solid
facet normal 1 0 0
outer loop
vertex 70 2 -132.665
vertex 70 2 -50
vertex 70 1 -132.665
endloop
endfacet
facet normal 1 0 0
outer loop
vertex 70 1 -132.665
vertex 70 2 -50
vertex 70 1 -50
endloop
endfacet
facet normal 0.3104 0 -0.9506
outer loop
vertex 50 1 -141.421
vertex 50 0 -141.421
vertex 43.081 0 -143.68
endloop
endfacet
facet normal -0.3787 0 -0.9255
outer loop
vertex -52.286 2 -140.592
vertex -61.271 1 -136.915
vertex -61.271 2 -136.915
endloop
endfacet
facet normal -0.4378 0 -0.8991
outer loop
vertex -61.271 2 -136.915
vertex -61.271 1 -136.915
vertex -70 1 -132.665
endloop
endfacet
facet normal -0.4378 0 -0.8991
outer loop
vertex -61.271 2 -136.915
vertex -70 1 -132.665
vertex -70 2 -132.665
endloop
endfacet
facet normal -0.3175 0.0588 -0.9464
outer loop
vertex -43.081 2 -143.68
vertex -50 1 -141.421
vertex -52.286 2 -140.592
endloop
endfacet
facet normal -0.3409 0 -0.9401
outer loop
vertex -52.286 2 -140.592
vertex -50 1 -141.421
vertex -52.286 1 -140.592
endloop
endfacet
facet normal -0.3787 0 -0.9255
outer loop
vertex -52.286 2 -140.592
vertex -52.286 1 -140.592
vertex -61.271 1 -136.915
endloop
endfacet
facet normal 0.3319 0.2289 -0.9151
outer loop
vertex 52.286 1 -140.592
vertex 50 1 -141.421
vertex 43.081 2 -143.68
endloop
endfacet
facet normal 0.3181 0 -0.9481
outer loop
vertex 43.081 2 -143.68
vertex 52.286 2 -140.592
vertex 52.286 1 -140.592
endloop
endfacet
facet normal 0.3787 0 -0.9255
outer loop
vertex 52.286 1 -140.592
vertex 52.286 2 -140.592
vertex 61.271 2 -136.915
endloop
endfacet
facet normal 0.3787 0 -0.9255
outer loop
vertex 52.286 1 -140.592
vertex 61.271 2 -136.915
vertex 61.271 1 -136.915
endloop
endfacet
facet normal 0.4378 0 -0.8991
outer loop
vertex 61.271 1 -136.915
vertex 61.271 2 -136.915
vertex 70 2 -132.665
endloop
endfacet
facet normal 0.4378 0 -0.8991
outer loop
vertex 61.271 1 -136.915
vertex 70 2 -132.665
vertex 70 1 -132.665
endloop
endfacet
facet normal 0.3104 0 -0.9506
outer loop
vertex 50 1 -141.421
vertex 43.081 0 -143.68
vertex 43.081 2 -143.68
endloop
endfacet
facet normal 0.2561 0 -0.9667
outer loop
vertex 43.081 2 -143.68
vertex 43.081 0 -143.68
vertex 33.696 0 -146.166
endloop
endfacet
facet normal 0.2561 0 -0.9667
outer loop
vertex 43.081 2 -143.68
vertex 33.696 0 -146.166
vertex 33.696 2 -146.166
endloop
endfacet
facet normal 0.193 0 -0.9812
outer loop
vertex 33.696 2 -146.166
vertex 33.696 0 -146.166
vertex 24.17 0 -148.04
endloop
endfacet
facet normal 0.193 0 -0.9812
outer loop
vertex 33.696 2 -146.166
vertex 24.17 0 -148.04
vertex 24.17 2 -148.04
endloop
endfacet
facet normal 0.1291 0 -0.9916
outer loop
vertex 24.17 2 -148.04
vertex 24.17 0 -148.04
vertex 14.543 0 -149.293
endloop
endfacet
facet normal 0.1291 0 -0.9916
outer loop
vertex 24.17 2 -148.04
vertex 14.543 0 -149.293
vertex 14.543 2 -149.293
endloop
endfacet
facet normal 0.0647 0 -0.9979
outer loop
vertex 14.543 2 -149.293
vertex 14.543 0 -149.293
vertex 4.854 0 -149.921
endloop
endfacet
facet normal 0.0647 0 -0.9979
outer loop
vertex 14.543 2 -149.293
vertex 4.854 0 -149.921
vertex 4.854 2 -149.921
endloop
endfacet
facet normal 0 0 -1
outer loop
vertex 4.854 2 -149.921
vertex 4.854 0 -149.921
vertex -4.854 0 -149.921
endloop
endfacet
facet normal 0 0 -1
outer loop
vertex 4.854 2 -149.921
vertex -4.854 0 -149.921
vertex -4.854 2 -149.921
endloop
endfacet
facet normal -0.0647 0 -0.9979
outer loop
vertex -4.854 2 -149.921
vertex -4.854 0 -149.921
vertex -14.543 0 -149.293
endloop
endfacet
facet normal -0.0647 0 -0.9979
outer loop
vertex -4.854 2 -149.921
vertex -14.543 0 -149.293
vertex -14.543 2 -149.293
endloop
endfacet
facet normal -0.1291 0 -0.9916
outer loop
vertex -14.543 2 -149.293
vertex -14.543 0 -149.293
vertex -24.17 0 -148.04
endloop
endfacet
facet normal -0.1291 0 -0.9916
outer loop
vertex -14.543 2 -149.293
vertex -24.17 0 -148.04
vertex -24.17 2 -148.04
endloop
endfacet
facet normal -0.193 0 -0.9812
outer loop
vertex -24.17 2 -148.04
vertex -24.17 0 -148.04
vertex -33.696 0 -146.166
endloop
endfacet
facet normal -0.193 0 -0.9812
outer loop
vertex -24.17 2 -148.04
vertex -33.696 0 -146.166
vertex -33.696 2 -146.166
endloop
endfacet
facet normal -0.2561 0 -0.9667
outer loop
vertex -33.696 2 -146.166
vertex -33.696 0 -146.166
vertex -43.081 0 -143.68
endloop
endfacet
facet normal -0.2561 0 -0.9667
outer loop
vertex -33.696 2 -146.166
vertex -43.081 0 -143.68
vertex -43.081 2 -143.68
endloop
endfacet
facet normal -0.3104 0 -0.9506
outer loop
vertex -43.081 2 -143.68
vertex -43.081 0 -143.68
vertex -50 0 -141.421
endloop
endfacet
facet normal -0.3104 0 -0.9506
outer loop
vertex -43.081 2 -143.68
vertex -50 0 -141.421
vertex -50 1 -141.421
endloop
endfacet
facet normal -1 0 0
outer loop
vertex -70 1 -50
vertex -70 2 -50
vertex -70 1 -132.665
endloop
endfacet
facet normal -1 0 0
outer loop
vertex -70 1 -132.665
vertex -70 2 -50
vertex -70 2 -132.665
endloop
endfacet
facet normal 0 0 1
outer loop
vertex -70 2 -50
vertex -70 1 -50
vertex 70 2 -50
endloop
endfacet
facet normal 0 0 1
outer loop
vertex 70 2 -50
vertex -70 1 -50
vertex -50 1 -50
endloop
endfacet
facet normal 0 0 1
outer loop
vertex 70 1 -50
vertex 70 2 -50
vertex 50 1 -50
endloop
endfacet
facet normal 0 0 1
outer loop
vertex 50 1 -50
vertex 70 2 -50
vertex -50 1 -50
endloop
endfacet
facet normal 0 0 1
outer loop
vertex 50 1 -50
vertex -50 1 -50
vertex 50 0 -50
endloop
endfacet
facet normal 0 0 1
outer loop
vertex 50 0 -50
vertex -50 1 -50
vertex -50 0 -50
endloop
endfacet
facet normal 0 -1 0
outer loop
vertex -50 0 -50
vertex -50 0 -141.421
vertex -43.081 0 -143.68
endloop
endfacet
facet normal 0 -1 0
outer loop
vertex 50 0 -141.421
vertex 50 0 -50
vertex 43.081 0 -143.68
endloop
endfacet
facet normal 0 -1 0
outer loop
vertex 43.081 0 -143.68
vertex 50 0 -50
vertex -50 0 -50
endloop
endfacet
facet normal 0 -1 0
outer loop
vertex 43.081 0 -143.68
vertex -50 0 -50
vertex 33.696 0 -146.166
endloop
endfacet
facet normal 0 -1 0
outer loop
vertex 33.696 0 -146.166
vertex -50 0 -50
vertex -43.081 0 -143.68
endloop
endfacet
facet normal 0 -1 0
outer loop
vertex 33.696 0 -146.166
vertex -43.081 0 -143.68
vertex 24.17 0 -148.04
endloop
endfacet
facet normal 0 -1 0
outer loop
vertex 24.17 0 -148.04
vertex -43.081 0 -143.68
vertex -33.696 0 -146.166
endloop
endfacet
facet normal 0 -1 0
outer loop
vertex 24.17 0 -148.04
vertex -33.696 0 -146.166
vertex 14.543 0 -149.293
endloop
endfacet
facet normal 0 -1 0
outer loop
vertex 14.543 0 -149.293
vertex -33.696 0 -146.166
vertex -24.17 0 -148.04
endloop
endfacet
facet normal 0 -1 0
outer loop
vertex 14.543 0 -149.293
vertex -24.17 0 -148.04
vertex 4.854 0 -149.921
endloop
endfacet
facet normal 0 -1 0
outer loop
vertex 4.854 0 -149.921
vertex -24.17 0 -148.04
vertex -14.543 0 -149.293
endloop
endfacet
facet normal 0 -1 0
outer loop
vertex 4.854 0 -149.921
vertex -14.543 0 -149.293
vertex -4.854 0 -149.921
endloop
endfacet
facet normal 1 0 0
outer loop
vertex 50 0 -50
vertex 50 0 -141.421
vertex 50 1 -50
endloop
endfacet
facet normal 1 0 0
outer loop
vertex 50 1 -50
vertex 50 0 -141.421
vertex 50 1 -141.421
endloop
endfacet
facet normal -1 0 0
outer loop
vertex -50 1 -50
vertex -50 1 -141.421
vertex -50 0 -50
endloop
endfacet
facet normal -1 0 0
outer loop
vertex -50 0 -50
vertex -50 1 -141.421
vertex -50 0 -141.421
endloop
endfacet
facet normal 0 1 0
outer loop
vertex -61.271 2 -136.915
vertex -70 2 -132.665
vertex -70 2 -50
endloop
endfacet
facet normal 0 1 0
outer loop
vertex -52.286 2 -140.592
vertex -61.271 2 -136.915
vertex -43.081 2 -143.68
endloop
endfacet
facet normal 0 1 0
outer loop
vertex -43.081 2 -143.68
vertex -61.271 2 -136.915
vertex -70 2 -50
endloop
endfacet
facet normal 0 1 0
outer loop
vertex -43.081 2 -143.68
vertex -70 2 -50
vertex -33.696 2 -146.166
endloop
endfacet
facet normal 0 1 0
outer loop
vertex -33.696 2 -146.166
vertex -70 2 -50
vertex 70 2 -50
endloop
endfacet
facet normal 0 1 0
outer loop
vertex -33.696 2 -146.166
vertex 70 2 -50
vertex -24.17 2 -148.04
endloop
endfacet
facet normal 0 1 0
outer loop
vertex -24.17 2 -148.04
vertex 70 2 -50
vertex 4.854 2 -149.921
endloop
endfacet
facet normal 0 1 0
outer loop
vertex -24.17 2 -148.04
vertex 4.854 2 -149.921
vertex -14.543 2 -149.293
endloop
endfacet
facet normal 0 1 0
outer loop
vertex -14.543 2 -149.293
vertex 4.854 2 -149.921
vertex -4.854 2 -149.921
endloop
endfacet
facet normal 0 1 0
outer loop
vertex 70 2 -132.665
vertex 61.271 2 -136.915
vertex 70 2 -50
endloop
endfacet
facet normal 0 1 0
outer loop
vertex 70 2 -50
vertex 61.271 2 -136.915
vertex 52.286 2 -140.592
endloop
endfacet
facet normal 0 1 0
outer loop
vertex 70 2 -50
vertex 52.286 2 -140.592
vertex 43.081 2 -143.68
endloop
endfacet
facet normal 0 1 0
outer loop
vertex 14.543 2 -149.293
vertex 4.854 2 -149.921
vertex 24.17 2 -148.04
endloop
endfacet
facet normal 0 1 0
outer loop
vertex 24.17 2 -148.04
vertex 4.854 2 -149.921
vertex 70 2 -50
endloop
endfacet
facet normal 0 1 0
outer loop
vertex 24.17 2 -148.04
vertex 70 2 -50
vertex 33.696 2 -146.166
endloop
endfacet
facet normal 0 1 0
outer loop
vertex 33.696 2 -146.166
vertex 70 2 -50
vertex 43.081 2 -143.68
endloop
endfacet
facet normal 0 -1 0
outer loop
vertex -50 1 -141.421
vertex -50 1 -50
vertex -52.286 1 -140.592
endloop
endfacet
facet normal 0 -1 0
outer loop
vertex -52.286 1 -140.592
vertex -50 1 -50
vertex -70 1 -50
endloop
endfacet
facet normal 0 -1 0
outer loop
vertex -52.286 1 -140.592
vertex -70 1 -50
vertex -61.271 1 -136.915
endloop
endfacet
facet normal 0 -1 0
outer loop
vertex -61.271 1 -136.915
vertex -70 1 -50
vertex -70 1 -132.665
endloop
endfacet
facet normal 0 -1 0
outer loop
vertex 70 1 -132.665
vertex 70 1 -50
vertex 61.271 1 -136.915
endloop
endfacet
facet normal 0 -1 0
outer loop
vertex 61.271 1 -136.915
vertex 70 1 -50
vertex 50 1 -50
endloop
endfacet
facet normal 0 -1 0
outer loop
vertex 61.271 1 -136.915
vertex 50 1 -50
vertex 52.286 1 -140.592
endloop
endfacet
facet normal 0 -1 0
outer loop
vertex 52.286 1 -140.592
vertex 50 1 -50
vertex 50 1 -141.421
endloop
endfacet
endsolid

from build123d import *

# Parameters (mm, degrees)
BOSS_EXTRUDE3_DEPTH = 2
BOSS_EXTRUDE4_DEPTH = 1
CUT_EXTRUDE4_DEPTH  = 1
CUT_EXTRUDE5_DEPTH  = 1
SKETCH7_W           = 100
SKETCH7_H           = 20.041590073
CUT_EXTRUDE6_DEPTH  = 166.541535573


with BuildPart() as part:
    # Sketch1 → Boss-Extrude3 (new body)
    with BuildSketch(Plane(origin=(0, 0, 0), x_dir=(1, 0, 0), z_dir=(0, 1, 0))):
        with BuildLine():
            Line((50, 29.958409927), (50, 50))
            Line((50, 50), (70, 50))
            Line((70, 50), (70, 132.664991614))
            ThreePointArc((70, 132.664991614), (0, 150), (-70, 132.664991614))
            Line((-70, 132.664991614), (-70, 50))
            Line((-70, 50), (-50, 50))
            Line((-50, 50), (-50, 29.958409927))
            Line((-50, 29.958409927), (50, 29.958409927))
        make_face()
    extrude(amount=BOSS_EXTRUDE3_DEPTH)

    # Sketch2 → Boss-Extrude4 (add)
    with BuildSketch(Plane.XZ):
        with BuildLine():
            Line((50, -50), (-50, -50))
            Line((-50, -50), (-50, -141.421356237))
            ThreePointArc((-50, -141.421356237), (0, -150), (50, -141.421356237))
            Line((50, -141.421356237), (50, -50))
        make_face()
    extrude(amount=-BOSS_EXTRUDE4_DEPTH)

    # Sketch5 → Cut-Extrude4 (cut)
    with BuildSketch(Plane.XZ):
        with BuildLine():
            Line((-50, -141.421356237), (-50, -50))
            Line((-50, -50), (-70, -50))
            Line((-70, -50), (-70, -132.664991614))
            ThreePointArc((-70, -132.664991614), (-60.159525267, -137.407538074), (-50, -141.421356237))
        make_face()
    extrude(amount=-CUT_EXTRUDE4_DEPTH, mode=Mode.SUBTRACT)

    # Sketch6 → Cut-Extrude5 (cut)
    with BuildSketch(Plane.XZ):
        with BuildLine():
            ThreePointArc((50, -141.421356237), (60.159525267, -137.407538074), (70, -132.664991614))
            Line((70, -132.664991614), (70, -50))
            Line((70, -50), (50, -50))
            Line((50, -50), (50, -141.421356237))
        make_face()
    extrude(amount=-CUT_EXTRUDE5_DEPTH, mode=Mode.SUBTRACT)

    # Sketch7 → Cut-Extrude6 (cut, through all)
    with BuildSketch(Plane.XZ):
        with Locations((0, -39.979204964)):
            Rectangle(SKETCH7_W, SKETCH7_H)
    extrude(amount=-CUT_EXTRUDE6_DEPTH, mode=Mode.SUBTRACT)


solid = part.part
